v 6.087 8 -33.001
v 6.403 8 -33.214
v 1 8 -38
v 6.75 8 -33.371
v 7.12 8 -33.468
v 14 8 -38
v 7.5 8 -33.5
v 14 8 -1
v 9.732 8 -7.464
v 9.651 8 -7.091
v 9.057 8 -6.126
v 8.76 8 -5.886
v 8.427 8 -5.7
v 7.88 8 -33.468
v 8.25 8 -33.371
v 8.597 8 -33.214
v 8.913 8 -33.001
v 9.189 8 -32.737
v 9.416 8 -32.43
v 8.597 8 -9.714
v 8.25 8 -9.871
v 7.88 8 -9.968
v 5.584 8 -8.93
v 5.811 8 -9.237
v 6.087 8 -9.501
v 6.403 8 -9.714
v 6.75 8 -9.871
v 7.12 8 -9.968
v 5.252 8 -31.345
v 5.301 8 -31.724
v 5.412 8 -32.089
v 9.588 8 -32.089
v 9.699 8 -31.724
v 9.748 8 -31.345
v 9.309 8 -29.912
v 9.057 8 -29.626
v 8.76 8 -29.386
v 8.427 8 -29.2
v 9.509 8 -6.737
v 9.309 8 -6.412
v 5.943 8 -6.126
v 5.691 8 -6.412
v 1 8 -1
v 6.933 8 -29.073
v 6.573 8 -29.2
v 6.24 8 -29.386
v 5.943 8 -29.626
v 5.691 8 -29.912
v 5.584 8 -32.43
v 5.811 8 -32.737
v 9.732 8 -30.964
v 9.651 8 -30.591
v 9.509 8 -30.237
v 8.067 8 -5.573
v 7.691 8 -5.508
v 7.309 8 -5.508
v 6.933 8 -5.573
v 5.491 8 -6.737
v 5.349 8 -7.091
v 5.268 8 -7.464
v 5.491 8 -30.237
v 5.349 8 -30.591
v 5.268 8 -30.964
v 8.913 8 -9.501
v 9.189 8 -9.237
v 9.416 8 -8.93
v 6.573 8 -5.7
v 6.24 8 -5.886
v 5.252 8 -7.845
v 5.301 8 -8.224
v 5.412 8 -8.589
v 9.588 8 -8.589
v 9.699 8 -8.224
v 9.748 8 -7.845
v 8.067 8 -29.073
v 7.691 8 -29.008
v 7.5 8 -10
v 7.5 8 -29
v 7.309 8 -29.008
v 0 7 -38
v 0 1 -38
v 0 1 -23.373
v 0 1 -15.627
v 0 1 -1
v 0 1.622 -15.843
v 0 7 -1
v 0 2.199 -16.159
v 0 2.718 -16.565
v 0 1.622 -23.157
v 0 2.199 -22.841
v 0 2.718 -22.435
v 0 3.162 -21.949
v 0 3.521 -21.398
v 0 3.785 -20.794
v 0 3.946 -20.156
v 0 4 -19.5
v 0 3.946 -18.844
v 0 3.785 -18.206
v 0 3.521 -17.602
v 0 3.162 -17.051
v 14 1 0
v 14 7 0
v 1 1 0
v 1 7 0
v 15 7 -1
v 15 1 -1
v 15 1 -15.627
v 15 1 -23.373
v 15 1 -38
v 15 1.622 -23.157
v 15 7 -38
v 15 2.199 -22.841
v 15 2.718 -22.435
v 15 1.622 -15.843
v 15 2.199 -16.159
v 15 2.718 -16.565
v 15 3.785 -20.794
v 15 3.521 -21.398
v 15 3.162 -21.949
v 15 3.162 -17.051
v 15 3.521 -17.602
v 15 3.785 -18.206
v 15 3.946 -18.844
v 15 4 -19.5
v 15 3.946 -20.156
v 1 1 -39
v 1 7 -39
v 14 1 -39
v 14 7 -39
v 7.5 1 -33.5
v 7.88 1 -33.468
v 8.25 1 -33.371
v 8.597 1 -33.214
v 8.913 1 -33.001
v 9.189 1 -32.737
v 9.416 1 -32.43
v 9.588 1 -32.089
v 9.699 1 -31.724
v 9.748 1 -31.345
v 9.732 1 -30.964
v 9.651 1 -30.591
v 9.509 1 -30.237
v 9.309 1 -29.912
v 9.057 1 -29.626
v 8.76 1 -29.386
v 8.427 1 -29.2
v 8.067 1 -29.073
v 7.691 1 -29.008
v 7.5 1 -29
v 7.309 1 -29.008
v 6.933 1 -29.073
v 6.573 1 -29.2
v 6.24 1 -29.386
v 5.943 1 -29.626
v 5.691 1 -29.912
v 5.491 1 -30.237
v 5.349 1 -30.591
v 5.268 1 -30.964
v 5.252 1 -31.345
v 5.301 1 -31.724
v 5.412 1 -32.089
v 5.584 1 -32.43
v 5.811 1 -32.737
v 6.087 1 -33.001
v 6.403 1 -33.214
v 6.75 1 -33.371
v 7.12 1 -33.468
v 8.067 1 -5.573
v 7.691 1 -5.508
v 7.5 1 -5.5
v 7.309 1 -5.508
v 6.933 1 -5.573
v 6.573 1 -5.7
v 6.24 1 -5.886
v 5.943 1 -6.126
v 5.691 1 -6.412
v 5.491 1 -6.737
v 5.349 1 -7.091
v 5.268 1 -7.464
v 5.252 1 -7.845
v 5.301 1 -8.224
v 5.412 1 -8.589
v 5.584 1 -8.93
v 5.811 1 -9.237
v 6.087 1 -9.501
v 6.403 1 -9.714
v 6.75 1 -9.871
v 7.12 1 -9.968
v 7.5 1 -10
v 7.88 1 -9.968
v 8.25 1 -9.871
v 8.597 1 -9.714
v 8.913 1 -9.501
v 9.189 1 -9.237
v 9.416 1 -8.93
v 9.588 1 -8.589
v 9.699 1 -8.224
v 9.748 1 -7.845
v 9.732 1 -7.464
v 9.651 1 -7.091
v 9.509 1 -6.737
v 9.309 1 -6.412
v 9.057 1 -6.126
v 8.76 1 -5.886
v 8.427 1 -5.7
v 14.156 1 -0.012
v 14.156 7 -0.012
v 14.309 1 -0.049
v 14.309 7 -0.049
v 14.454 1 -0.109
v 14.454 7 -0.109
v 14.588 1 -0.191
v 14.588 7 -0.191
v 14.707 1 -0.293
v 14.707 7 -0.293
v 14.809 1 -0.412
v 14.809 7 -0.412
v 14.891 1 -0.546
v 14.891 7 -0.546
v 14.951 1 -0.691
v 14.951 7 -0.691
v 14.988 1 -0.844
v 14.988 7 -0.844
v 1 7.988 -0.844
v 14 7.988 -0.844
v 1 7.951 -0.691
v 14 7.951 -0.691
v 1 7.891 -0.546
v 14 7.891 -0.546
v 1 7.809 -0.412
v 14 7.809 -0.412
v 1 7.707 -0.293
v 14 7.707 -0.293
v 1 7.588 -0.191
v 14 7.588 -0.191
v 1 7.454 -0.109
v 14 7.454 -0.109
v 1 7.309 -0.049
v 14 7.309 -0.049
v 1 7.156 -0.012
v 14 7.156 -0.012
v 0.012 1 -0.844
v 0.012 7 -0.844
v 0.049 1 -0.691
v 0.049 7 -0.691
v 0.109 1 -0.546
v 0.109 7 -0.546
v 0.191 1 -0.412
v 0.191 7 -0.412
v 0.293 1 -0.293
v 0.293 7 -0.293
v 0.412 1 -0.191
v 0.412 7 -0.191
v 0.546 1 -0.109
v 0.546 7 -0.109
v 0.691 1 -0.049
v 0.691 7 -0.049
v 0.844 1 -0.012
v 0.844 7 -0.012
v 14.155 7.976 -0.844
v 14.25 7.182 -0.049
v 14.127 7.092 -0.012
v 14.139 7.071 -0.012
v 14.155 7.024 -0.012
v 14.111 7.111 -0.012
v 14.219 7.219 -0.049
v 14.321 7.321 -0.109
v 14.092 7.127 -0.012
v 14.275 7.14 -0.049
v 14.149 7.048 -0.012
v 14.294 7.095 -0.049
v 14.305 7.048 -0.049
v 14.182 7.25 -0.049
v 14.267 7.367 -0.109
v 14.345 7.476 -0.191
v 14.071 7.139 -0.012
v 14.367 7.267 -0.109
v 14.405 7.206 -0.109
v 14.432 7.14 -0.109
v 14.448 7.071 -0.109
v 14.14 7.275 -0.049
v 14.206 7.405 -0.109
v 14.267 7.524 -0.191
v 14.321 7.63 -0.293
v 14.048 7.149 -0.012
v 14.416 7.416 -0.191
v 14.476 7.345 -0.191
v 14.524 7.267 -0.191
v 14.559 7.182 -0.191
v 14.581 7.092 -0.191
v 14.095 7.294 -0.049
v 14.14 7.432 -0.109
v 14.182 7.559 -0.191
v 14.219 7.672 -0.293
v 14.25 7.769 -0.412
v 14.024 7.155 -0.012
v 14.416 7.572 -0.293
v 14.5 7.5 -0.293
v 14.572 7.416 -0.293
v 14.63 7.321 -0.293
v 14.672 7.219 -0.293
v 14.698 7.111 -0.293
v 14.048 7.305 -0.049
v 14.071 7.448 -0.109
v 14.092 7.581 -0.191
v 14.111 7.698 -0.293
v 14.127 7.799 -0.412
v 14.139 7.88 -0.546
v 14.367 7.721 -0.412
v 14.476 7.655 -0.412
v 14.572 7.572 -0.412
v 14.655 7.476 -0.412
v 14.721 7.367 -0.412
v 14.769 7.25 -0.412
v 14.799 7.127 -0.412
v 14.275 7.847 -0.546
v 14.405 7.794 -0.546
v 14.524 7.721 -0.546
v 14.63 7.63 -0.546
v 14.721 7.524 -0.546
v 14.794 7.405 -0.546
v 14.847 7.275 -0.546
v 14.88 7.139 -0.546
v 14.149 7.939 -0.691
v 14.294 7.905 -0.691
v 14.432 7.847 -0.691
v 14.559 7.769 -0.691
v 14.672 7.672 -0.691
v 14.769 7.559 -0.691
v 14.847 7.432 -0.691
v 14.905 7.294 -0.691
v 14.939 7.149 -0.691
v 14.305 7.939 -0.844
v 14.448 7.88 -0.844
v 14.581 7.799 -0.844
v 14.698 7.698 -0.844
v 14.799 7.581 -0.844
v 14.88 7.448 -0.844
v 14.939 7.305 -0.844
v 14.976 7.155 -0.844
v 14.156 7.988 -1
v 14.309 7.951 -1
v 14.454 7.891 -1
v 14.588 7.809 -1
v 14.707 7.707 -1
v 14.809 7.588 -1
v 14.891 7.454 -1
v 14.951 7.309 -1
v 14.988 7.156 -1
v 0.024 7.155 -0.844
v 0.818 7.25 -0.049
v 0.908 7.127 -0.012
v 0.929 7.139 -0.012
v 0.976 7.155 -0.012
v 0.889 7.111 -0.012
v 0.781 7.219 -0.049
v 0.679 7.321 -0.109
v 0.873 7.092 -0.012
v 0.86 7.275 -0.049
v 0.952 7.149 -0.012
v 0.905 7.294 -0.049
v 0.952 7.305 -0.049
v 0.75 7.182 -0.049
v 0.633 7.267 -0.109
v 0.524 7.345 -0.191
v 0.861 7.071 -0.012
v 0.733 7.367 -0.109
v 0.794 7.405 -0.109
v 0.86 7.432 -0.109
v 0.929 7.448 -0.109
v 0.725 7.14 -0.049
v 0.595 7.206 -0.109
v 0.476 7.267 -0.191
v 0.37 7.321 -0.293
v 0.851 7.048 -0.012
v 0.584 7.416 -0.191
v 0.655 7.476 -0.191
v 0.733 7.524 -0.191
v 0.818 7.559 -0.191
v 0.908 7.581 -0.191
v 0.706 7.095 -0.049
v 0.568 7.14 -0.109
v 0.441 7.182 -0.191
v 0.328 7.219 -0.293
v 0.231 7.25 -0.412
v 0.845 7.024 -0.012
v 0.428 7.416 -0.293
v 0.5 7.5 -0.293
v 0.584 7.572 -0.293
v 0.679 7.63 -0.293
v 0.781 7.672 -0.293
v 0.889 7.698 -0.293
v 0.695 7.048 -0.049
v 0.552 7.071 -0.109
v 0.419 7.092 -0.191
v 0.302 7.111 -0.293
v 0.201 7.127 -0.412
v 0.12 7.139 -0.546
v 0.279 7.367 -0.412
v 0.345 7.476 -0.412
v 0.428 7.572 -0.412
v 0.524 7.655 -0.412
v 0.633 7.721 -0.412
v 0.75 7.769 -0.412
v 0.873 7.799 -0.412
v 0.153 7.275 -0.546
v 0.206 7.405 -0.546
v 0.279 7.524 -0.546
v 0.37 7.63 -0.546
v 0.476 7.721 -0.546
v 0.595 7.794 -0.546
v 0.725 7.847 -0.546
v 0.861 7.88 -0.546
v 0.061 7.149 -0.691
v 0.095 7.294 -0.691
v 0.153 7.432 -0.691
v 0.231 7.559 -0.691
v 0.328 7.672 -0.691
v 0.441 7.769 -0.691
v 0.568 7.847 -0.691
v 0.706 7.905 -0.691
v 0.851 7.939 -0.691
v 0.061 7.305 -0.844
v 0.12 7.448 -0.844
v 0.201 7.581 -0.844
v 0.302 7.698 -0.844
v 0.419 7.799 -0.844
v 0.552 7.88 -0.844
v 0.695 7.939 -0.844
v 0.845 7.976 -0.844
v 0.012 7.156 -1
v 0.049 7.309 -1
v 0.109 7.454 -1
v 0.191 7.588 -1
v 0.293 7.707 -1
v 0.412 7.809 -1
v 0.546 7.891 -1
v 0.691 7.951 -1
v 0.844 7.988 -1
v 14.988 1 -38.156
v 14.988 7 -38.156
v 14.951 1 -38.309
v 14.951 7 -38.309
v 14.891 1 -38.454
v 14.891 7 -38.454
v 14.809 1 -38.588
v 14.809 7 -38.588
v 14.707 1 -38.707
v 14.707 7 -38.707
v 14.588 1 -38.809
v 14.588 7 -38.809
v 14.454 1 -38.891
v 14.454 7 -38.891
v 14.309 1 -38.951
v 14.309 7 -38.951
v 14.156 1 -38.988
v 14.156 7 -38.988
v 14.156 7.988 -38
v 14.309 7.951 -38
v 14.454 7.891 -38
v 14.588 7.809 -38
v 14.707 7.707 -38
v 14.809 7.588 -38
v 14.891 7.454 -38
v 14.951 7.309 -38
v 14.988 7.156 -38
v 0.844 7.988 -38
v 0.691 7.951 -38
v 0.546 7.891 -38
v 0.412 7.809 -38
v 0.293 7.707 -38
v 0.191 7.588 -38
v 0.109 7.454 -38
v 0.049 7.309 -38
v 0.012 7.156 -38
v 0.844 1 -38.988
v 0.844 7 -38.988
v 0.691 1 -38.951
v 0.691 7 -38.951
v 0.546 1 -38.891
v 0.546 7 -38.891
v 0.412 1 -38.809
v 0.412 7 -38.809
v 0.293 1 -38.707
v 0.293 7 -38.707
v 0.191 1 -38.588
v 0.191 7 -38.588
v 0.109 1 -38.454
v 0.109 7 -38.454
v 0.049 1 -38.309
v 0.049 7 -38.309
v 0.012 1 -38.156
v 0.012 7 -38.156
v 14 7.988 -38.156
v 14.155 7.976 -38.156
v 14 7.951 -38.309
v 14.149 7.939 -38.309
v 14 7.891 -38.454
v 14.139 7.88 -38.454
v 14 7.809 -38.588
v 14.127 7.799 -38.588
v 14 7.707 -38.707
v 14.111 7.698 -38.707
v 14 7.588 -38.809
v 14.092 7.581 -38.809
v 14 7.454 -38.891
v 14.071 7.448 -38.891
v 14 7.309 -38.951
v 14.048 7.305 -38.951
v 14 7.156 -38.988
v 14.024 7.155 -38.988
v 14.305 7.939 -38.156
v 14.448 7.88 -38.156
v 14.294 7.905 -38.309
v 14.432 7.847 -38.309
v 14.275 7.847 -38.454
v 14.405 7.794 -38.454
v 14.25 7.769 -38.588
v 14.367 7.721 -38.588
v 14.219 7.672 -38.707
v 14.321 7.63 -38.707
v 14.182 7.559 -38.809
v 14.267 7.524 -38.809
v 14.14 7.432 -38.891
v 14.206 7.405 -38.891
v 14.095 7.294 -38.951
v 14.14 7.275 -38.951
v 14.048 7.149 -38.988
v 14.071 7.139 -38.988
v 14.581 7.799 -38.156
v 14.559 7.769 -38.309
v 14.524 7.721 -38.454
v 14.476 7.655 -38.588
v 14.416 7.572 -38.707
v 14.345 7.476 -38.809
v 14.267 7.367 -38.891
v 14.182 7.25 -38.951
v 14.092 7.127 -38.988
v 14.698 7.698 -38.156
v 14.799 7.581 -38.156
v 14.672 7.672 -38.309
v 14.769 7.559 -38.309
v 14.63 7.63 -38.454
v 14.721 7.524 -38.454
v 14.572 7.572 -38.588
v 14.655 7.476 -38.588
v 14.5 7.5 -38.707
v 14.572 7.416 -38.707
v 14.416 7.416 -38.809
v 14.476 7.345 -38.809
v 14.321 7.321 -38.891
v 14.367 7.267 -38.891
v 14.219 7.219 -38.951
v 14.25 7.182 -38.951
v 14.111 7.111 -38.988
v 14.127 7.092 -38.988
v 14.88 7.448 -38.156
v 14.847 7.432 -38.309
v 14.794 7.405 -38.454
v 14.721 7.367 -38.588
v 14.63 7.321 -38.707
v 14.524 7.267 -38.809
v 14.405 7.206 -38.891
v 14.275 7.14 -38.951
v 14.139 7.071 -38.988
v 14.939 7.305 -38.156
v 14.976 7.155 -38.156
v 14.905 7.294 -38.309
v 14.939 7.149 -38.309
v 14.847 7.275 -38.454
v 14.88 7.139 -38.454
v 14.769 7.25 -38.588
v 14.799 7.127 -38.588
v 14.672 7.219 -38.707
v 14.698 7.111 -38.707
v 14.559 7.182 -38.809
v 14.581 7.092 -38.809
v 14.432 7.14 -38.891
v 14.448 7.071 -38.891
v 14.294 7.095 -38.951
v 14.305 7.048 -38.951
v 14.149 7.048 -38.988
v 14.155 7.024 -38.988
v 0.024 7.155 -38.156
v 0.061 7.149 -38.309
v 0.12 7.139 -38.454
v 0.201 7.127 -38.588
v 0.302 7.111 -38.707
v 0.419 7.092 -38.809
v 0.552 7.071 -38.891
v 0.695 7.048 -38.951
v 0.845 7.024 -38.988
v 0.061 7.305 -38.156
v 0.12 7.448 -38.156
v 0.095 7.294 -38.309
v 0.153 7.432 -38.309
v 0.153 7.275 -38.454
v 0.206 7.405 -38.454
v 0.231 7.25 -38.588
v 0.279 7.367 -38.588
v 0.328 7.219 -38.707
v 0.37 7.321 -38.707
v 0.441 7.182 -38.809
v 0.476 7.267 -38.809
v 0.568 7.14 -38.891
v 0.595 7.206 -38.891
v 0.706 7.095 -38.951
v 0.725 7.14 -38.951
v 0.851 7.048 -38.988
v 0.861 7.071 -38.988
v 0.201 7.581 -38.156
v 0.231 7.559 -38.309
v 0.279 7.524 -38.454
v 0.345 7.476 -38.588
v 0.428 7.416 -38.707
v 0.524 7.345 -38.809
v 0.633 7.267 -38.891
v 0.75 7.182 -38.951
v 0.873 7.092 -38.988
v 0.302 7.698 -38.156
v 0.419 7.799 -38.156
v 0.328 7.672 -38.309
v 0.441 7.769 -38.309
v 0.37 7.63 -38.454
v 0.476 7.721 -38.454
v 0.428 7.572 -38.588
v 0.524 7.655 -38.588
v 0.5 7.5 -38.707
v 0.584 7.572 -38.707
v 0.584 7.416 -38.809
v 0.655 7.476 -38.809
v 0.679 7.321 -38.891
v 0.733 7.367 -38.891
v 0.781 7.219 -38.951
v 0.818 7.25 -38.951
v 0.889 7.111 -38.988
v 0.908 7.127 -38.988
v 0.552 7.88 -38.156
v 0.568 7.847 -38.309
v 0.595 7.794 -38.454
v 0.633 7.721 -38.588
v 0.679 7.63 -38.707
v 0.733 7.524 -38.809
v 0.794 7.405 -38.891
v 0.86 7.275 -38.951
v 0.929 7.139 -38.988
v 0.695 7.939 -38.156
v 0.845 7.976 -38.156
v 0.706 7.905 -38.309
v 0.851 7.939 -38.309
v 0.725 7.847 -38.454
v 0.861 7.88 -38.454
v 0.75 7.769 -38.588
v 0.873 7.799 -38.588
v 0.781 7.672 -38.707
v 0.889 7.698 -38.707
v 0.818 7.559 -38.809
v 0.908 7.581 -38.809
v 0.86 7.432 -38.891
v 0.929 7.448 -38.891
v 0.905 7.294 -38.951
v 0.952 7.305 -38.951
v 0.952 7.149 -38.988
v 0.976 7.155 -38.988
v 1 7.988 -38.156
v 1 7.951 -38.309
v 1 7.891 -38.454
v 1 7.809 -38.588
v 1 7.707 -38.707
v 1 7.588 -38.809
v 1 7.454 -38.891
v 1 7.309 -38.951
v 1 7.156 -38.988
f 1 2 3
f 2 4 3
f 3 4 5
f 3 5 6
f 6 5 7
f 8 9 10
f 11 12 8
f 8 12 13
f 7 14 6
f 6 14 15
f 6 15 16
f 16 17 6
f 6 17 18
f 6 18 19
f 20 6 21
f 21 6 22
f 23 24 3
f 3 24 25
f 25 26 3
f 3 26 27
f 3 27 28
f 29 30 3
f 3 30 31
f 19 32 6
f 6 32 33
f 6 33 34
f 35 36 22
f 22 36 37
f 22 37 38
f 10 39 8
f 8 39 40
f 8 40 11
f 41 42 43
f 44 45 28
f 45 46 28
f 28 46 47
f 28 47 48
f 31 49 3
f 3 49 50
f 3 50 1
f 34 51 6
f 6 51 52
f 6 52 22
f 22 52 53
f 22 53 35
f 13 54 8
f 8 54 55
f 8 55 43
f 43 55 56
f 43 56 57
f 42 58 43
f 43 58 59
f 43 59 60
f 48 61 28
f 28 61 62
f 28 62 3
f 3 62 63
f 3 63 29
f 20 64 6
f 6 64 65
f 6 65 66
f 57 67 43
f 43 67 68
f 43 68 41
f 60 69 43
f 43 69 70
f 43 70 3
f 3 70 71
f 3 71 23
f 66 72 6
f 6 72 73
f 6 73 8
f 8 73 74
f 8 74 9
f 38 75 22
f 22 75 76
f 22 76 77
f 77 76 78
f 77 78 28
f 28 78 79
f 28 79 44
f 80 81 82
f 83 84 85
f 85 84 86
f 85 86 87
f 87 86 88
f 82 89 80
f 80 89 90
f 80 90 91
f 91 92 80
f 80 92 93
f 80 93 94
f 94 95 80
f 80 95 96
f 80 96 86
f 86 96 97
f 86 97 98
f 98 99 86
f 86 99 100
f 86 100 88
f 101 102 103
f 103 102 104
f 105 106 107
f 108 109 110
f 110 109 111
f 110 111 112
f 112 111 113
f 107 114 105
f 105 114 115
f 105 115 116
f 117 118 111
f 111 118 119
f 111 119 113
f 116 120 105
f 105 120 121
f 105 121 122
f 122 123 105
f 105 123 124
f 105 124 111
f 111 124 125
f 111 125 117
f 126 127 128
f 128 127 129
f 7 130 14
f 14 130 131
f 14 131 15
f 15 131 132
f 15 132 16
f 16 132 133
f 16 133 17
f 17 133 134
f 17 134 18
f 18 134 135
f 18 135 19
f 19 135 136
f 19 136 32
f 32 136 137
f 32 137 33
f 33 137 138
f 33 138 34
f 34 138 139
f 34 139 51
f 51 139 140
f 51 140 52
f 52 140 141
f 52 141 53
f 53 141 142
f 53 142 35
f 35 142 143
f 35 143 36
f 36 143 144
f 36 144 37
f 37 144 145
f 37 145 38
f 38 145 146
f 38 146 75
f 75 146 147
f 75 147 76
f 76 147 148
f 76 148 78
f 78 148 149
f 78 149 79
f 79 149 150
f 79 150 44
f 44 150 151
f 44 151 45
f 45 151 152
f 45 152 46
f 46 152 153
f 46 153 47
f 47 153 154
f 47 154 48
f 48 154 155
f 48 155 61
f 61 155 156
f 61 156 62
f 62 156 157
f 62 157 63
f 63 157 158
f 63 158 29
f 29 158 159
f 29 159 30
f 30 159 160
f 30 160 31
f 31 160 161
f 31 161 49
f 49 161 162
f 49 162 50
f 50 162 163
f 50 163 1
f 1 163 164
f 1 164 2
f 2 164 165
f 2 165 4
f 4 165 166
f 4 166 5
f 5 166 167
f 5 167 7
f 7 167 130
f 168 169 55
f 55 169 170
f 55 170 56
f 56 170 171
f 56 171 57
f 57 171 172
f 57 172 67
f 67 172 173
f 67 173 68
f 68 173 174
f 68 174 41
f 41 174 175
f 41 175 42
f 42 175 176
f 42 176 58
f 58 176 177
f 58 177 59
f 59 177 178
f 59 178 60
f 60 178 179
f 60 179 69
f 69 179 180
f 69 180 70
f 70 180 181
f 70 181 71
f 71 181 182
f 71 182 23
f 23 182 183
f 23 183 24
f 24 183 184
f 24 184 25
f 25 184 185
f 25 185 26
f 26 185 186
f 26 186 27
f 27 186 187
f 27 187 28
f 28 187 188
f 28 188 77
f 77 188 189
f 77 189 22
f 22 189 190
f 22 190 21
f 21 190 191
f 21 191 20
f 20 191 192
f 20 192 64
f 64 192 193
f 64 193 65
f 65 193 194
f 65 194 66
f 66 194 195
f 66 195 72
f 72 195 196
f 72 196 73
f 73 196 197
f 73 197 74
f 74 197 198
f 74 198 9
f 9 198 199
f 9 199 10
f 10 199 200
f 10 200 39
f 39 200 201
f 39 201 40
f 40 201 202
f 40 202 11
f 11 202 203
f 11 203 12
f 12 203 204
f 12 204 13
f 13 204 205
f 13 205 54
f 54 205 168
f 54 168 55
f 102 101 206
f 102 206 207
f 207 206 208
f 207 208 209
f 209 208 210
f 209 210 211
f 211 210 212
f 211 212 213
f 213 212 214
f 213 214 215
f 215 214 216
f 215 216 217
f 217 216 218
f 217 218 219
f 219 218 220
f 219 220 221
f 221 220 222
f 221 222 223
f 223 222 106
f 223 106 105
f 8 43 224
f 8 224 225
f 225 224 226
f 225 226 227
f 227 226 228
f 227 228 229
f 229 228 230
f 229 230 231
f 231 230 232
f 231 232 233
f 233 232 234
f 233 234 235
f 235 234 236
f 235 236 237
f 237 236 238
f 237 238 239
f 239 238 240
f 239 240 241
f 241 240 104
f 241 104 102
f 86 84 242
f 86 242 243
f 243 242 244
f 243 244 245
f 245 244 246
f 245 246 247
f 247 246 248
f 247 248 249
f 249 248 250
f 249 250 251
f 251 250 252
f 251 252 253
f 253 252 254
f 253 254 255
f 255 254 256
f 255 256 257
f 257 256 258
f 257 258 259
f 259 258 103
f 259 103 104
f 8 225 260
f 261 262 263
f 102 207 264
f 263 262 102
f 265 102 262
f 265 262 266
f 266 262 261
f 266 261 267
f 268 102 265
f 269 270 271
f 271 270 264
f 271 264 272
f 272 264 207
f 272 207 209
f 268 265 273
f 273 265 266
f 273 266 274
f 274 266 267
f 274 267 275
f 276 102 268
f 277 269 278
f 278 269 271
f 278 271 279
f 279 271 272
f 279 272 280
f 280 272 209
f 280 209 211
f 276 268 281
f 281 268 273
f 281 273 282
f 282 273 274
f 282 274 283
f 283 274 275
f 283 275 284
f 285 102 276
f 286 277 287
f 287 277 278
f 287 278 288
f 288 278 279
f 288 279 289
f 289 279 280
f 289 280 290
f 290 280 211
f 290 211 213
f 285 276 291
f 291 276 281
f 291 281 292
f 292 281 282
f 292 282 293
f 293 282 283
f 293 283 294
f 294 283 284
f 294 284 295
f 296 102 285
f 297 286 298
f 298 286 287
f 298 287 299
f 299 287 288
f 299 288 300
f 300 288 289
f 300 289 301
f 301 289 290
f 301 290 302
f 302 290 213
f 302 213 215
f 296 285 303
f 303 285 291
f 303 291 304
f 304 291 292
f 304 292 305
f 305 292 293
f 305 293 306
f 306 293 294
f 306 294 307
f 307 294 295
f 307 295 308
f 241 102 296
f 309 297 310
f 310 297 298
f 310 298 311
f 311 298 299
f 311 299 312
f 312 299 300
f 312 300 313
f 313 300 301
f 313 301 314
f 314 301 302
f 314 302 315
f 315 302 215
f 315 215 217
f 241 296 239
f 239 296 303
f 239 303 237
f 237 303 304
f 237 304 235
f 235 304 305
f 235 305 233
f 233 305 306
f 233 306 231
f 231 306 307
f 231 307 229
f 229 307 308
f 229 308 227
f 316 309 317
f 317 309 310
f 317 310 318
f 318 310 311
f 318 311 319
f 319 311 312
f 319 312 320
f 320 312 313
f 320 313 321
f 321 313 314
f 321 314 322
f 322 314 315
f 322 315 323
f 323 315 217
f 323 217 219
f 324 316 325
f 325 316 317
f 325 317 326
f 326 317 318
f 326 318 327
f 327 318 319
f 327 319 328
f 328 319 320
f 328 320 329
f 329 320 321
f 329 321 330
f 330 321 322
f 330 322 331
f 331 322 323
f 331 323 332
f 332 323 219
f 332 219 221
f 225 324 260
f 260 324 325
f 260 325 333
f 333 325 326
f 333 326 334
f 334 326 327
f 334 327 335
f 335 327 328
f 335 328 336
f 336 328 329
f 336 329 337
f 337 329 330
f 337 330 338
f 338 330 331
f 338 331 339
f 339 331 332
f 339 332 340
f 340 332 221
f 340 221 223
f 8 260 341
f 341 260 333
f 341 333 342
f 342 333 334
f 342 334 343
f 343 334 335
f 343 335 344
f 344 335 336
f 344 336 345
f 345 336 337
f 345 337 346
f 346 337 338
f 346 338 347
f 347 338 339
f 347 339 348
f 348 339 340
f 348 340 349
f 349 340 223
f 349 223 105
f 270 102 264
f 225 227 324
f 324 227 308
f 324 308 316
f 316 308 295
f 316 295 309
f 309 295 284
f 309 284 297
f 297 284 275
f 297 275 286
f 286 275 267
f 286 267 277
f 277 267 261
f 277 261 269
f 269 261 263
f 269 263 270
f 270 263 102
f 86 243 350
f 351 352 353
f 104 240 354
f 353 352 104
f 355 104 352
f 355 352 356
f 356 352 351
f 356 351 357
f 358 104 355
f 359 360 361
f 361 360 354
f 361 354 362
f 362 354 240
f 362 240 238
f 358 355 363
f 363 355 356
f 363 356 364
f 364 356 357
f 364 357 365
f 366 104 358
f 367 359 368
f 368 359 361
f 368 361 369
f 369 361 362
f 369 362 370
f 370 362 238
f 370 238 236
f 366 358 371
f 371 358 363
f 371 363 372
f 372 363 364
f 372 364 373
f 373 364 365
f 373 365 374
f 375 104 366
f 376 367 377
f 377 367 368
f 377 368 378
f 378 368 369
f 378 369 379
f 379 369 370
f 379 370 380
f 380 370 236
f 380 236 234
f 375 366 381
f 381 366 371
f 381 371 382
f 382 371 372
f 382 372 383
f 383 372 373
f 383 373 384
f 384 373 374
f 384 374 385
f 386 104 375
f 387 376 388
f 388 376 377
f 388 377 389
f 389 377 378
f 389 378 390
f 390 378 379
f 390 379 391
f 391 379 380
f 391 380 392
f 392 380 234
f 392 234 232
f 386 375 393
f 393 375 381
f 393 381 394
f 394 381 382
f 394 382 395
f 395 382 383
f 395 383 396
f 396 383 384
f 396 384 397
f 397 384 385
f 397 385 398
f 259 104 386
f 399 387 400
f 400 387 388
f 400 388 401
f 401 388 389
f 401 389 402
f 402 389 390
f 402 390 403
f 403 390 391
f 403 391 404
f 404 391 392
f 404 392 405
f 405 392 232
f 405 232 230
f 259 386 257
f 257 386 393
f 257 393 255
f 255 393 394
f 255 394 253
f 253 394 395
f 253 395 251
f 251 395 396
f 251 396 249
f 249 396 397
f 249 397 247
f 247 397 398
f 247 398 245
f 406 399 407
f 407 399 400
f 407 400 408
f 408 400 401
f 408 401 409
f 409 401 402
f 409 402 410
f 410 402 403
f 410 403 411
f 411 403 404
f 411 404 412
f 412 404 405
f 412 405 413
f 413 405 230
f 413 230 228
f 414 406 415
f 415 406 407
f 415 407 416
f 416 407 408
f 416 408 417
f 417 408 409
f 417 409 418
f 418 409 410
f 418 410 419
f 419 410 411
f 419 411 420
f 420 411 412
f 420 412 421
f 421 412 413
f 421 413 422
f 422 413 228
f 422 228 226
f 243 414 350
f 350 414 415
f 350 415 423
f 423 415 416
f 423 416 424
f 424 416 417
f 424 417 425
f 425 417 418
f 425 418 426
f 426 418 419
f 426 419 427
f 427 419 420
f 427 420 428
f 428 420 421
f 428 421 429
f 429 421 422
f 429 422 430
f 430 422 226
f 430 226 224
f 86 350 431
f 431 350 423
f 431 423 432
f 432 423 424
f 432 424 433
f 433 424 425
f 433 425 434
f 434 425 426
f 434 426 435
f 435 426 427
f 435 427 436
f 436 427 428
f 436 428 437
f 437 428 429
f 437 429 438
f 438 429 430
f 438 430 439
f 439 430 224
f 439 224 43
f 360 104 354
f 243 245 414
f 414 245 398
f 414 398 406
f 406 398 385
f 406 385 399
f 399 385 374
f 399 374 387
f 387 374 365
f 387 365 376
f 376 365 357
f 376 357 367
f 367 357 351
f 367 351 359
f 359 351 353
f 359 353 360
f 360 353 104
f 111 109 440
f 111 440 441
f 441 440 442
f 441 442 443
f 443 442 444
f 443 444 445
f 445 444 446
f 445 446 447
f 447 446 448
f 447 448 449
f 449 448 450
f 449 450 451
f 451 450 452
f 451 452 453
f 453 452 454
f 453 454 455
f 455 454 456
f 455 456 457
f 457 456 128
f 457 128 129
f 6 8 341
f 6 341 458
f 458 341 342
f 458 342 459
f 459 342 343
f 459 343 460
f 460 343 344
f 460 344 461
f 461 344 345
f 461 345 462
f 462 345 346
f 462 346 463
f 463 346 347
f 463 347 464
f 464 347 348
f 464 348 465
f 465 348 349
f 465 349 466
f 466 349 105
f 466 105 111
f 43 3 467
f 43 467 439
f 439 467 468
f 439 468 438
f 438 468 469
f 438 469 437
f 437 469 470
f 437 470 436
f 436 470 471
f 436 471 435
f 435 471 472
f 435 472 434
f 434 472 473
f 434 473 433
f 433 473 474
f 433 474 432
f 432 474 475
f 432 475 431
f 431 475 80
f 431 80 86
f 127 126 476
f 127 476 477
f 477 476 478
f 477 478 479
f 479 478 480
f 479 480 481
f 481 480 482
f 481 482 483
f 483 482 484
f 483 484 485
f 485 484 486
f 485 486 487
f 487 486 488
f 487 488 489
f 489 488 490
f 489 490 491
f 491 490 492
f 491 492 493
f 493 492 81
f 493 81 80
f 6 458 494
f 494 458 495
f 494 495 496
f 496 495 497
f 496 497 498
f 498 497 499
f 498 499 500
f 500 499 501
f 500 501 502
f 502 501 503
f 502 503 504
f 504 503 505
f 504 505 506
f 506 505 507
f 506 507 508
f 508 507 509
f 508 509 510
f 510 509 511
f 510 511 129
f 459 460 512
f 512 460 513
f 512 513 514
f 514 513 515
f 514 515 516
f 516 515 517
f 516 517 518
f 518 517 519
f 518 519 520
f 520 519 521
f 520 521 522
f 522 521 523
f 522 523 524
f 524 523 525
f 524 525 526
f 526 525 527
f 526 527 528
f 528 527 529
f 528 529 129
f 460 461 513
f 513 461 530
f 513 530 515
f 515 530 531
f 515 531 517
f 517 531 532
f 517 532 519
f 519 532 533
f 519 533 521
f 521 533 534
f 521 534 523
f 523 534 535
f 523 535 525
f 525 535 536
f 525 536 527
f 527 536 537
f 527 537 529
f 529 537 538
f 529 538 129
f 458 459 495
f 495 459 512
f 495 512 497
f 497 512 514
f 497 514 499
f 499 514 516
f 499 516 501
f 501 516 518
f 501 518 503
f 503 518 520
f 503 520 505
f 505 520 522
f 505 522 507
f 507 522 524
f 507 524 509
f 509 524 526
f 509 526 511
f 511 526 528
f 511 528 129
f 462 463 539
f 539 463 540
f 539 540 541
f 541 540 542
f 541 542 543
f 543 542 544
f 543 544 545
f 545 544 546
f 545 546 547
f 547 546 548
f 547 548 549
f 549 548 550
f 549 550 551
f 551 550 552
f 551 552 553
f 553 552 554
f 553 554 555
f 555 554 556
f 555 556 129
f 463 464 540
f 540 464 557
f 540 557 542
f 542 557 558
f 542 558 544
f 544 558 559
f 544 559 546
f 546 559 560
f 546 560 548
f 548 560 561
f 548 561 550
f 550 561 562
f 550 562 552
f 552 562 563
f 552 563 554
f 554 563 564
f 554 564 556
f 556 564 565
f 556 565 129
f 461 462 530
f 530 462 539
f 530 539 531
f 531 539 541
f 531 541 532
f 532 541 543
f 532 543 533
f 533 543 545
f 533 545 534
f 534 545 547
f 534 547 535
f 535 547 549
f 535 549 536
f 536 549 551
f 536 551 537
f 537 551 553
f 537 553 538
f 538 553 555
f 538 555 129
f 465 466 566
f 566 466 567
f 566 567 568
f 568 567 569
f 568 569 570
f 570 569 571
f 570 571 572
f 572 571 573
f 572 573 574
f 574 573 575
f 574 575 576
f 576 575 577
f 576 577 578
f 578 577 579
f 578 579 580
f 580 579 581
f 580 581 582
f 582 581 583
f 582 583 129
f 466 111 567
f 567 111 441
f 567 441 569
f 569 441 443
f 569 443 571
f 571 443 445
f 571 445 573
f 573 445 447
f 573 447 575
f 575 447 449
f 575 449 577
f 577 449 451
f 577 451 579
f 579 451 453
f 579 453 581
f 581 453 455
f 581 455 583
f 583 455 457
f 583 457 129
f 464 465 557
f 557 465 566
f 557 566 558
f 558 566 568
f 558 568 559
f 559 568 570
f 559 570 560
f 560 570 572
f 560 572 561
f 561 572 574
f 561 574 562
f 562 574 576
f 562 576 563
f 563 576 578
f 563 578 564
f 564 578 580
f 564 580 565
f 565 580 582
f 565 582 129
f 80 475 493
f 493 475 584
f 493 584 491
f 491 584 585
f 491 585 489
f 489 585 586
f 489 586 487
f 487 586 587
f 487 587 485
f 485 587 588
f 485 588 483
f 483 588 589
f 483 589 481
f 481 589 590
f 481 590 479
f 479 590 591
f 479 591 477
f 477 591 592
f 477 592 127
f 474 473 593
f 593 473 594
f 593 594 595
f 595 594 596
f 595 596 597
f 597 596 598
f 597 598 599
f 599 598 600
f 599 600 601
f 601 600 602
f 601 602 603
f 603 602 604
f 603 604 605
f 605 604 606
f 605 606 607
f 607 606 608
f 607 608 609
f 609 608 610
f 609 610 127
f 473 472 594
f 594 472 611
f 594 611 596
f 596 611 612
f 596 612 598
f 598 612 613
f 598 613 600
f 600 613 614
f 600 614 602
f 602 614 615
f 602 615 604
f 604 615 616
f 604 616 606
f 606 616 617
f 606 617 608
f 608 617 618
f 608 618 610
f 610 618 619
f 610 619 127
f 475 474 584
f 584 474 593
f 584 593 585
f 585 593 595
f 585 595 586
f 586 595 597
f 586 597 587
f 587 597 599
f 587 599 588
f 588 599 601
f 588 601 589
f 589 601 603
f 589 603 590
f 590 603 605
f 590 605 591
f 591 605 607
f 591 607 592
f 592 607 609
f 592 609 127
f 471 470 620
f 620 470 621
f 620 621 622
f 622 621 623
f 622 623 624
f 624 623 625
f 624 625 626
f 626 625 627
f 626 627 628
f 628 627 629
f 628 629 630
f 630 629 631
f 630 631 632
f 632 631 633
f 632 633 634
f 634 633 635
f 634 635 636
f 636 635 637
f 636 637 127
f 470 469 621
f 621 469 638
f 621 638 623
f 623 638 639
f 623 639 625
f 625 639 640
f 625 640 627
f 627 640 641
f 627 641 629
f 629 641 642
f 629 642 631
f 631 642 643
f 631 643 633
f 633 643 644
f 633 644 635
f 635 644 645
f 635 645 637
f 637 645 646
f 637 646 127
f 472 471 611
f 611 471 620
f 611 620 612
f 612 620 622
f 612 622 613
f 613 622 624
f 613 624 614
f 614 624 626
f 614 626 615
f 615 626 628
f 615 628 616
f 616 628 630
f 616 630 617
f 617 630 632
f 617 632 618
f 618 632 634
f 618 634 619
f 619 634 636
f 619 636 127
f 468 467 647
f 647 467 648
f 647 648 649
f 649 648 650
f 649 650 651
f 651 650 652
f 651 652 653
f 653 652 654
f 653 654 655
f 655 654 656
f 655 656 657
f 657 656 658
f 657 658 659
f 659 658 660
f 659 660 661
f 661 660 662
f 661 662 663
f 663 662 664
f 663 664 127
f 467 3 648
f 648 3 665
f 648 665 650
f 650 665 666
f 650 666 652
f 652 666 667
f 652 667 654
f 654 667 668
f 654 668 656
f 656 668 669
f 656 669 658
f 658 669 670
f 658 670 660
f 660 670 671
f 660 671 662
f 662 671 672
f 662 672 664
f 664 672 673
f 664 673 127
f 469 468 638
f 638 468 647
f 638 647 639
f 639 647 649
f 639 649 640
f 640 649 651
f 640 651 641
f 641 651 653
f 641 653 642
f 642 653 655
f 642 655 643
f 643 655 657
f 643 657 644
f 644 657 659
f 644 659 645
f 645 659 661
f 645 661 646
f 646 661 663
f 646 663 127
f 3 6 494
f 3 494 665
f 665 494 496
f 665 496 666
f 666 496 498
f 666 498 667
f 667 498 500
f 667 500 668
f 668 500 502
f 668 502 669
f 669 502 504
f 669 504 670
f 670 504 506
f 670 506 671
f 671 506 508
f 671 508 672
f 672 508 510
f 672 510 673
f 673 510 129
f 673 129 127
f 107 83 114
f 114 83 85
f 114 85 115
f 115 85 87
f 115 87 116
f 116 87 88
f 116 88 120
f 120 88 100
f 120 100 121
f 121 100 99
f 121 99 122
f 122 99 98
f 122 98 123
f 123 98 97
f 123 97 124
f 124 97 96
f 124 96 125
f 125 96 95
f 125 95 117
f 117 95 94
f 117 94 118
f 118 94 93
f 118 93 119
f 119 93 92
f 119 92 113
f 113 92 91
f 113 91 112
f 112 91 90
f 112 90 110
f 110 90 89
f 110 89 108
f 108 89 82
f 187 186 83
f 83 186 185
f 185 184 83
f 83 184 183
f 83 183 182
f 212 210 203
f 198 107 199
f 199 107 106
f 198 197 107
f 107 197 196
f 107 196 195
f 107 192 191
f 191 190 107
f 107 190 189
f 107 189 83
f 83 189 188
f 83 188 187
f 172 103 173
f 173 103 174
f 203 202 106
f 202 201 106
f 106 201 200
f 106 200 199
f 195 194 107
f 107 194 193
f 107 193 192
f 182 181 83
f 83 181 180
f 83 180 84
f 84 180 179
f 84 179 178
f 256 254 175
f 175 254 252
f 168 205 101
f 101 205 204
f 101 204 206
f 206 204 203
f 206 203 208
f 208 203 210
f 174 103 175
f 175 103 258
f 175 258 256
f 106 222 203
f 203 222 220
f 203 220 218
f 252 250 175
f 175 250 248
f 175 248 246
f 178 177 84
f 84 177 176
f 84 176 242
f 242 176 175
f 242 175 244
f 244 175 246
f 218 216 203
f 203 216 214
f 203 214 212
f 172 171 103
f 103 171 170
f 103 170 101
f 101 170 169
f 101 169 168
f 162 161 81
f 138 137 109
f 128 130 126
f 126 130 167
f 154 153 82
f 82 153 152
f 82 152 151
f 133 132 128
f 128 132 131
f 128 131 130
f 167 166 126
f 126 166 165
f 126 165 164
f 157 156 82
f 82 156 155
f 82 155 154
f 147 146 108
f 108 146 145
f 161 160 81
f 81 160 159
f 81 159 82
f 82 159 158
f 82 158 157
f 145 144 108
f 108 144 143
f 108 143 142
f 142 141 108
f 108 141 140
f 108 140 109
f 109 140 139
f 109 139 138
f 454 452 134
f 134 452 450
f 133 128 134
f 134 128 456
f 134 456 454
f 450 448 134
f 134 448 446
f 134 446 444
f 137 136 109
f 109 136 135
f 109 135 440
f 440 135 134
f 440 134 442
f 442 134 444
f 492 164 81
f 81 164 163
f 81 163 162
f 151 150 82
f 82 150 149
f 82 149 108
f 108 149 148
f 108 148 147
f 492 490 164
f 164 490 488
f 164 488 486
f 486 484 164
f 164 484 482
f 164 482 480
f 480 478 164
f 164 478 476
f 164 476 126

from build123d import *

# Parameters (mm, degrees)
SKETCH1_W           = 15
SKETCH1_H           = 39
SKETCH1_R           = 2.25
BOSS_EXTRUDE1_DEPTH = 8
FILLET2_R           = 1
CUT_EXTRUDE1_REACH  = 44.544


with BuildPart() as part:
    # Sketch1 → Boss-Extrude1 (new body)
    with BuildSketch(Plane(origin=(0, 0, 0), x_dir=(1, 0, 0), z_dir=(0, 1, 0))):
        with Locations((7.5, 19.5)):
            Rectangle(SKETCH1_W, SKETCH1_H)
        with Locations(Location((7.5, 31.25, 0), (0, 0, 270))):
            Circle(SKETCH1_R, mode=Mode.SUBTRACT)
        with Locations(Location((7.5, 7.75, 0), (0, 0, 90))):
            Circle(SKETCH1_R, mode=Mode.SUBTRACT)
    extrude(amount=BOSS_EXTRUDE1_DEPTH)

    # Fillet2
    fillet2_edges = [part.edges().sort_by_distance(p)[0] for p in [
        (15, 8, -19.5),
        (7.5, 8, -39),
        (0, 8, -19.5),
        (7.5, 8, 0),
        (0, 4, -39),
        (15, 4, -39),
        (15, 4, 0),
        (0, 4, 0),
    ]]
    fillet(fillet2_edges, radius=FILLET2_R)

    # Cut-Extrude1: up to this face of the body (flat: up to its plane)
    cut_extrude1_end = Plane(part.part.faces().sort_by_distance((15, 3.5, -19.5))[0])
    # Sketch2 → Cut-Extrude1 (cut, up to the picked face)
    with BuildSketch(Plane.ZY, mode=Mode.PRIVATE) as cut_extrude1_sk1:
        with BuildLine():
            Line((-23.372983346, 1), (-45.302397196, 1))
            Line((-45.302397196, 1), (-45.302397196, -1))
            Line((-45.302397196, -1), (4.697602804, -1))
            Line((4.697602804, -1), (4.697602804, 1))
            Line((4.697602804, 1), (-15.627016654, 1))
            ThreePointArc((-15.627016654, 1), (-19.5, 4), (-23.372983346, 1))
        make_face()
    cut_extrude1_tool1 = split(extrude(cut_extrude1_sk1.sketch, amount=-CUT_EXTRUDE1_REACH, mode=Mode.PRIVATE), bisect_by=cut_extrude1_end, keep=Keep.BOTH, mode=Mode.PRIVATE)
    add(cut_extrude1_tool1.solids().sort_by(Axis((0, 0.330412, -20.184541), (1, 0, 0)))[0], mode=Mode.SUBTRACT)


solid = part.part
